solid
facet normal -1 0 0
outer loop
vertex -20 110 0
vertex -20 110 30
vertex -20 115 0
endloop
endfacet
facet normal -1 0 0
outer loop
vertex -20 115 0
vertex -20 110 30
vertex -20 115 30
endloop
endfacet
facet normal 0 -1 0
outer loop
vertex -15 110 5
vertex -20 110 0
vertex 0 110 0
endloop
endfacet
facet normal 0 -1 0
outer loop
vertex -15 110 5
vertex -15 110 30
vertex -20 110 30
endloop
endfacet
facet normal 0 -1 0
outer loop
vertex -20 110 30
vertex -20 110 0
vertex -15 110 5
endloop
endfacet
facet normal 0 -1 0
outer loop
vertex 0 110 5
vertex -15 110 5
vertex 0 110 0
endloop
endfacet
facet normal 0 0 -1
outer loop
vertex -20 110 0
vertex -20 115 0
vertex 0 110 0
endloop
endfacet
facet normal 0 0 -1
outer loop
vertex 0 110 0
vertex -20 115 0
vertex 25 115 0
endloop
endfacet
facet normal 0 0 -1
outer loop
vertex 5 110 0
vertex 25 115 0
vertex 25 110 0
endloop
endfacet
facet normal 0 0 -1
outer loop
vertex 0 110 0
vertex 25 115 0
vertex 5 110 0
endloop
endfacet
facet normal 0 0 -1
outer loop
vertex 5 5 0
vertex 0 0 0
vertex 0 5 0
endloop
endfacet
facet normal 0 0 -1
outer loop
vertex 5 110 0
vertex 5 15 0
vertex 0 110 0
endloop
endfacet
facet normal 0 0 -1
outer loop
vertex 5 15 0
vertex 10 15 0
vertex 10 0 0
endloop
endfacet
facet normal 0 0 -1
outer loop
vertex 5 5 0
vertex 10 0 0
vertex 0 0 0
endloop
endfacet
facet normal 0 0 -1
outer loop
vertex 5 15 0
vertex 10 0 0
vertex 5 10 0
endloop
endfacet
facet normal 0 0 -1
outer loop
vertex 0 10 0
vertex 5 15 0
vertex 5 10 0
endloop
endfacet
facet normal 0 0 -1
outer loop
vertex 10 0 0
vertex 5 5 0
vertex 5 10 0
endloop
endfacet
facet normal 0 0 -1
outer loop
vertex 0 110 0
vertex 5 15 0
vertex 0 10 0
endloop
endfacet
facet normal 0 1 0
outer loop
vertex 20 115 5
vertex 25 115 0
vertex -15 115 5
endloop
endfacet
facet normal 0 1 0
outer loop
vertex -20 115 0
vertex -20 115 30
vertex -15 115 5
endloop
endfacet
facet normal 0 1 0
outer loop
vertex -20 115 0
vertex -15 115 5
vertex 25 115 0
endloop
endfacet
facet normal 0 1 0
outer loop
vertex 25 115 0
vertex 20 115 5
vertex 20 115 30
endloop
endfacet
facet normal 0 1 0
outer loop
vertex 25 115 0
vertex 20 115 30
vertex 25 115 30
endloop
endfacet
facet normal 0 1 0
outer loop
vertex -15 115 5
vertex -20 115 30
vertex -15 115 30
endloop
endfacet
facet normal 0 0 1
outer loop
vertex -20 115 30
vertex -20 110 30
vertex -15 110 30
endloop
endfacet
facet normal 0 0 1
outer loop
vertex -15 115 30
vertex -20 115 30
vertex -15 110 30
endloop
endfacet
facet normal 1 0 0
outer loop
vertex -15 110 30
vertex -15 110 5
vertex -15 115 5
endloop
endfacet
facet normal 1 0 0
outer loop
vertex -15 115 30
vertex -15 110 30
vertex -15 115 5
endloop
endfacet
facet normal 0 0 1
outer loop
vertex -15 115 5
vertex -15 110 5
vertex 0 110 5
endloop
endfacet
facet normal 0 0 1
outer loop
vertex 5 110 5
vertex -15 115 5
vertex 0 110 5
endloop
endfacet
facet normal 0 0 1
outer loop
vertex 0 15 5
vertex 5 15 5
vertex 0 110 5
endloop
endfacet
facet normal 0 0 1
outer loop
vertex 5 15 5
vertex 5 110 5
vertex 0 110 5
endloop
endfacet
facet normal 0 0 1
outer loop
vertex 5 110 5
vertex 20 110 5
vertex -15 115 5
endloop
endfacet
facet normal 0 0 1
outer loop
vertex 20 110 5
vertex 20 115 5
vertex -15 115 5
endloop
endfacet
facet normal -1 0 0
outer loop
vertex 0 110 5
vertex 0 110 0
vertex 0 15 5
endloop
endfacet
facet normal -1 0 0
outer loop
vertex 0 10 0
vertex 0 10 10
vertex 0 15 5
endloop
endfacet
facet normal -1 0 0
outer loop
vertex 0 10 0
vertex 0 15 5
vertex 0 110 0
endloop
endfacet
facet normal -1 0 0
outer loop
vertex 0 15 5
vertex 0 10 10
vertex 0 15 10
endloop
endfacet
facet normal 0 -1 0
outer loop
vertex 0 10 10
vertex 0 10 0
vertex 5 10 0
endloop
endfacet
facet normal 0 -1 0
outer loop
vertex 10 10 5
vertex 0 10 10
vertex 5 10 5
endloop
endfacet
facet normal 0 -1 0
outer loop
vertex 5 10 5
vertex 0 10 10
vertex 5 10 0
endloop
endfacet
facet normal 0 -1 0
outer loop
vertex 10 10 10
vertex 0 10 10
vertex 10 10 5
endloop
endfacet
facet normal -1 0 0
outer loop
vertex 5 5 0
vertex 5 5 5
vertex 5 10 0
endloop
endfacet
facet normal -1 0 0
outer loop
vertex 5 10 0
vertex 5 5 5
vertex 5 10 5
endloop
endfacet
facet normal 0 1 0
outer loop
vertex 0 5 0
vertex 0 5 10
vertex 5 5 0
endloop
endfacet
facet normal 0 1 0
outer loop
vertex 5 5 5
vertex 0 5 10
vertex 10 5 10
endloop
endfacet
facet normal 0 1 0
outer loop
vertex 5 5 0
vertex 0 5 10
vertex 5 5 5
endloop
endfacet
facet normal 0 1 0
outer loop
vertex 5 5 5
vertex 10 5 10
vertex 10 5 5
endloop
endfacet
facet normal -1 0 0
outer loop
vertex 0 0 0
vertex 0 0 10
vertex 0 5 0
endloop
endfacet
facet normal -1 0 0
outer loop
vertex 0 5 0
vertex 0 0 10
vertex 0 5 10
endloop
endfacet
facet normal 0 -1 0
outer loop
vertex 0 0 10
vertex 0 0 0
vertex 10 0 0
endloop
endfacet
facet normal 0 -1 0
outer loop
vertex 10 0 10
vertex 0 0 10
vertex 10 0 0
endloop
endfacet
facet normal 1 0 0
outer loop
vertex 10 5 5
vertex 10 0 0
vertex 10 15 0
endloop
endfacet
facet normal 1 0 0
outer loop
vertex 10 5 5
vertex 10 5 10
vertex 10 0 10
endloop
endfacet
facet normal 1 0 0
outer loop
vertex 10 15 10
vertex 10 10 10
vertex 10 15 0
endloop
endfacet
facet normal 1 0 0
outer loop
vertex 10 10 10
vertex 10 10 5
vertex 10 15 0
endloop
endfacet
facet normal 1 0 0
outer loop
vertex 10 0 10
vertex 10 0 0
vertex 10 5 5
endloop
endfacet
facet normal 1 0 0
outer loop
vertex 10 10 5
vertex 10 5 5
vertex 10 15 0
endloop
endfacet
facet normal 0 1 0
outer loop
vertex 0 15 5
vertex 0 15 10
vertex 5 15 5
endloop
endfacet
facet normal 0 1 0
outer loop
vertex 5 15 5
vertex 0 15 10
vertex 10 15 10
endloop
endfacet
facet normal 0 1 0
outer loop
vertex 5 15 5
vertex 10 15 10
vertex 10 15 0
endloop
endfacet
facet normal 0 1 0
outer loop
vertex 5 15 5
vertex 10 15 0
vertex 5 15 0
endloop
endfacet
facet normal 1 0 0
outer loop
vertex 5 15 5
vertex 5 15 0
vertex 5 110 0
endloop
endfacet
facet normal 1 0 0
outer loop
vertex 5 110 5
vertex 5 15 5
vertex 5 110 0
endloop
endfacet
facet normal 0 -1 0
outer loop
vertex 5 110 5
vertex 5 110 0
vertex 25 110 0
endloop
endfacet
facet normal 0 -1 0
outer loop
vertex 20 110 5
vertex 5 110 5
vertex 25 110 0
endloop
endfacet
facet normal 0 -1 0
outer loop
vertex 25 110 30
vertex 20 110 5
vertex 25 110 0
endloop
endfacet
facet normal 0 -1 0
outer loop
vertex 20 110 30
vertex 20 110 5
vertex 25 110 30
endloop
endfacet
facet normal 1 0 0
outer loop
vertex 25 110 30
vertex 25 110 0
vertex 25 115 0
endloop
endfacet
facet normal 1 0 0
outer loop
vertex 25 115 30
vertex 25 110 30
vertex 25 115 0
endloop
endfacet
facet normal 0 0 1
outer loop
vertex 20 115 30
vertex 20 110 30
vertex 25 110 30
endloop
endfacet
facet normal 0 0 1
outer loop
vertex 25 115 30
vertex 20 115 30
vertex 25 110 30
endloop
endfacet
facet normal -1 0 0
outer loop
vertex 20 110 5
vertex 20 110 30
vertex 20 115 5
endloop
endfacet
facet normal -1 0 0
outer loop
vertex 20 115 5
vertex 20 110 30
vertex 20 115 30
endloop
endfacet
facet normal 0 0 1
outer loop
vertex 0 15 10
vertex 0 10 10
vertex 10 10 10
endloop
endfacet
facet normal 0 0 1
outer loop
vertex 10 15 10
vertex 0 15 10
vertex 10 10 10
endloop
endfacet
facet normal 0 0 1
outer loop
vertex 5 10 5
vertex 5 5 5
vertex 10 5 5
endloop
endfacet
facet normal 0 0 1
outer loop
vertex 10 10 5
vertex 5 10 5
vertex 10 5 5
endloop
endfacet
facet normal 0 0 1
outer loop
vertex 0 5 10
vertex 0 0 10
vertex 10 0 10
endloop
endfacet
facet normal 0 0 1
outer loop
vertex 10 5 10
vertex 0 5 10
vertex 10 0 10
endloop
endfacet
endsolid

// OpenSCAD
/*

Copyright (c) 2014, Steven Presser
All rights reserved.

Redistribution and use in source and binary forms, with or without modification, are permitted provided that the following conditions are met:

1. Redistributions of source code must retain the above copyright notice, this list of conditions and the following disclaimer.

2. Redistributions in binary form must reproduce the above copyright notice, this list of conditions and the following disclaimer in the documentation and/or other materials provided with the distribution.

3. Neither Steven Presser nor the names of its contributors may be used to endorse or promote products derived from this software without specific prior written permission.

THIS SOFTWARE IS PROVIDED BY THE COPYRIGHT HOLDERS AND CONTRIBUTORS "AS IS" AND ANY EXPRESS OR IMPLIED WARRANTIES, INCLUDING, BUT NOT LIMITED TO, THE IMPLIED WARRANTIES OF MERCHANTABILITY AND FITNESS FOR A PARTICULAR PURPOSE ARE DISCLAIMED. IN NO EVENT SHALL THE COPYRIGHT HOLDER OR CONTRIBUTORS BE LIABLE FOR ANY DIRECT, INDIRECT, INCIDENTAL, SPECIAL, EXEMPLARY, OR CONSEQUENTIAL DAMAGES (INCLUDING, BUT NOT LIMITED TO, PROCUREMENT OF SUBSTITUTE GOODS OR SERVICES; LOSS OF USE, DATA, OR PROFITS; OR BUSINESS INTERRUPTION) HOWEVER CAUSED AND ON ANY THEORY OF LIABILITY, WHETHER IN CONTRACT, STRICT LIABILITY, OR TORT (INCLUDING NEGLIGENCE OR OTHERWISE) ARISING IN ANY WAY OUT OF THE USE OF THIS SOFTWARE, EVEN IF ADVISED OF THE POSSIBILITY OF SUCH DAMAGE.

*/

dropDistance=100;
splitWidth=45;
beamThickness=5;
tongueLength=30;

union() {
	cube([2*beamThickness,beamThickness,2*beamThickness]);
	translate([beamThickness,beamThickness,0])
cube([beamThickness,2*beamThickness,beamThickness]);
	translate([0,2*beamThickness,0]) cube([2*beamThickness,beamThickness,2*beamThickness]);
	translate([0,2*beamThickness,0]) {
		cube([beamThickness, dropDistance, beamThickness]);
	}
	translate([-(splitWidth-beamThickness)/2,2*beamThickness+dropDistance,0]) {
		cube([splitWidth, beamThickness, beamThickness]);
		cube([beamThickness, beamThickness, tongueLength]);
		translate([splitWidth-beamThickness,0,0]) cube([beamThickness, beamThickness, tongueLength]);
	}
}
